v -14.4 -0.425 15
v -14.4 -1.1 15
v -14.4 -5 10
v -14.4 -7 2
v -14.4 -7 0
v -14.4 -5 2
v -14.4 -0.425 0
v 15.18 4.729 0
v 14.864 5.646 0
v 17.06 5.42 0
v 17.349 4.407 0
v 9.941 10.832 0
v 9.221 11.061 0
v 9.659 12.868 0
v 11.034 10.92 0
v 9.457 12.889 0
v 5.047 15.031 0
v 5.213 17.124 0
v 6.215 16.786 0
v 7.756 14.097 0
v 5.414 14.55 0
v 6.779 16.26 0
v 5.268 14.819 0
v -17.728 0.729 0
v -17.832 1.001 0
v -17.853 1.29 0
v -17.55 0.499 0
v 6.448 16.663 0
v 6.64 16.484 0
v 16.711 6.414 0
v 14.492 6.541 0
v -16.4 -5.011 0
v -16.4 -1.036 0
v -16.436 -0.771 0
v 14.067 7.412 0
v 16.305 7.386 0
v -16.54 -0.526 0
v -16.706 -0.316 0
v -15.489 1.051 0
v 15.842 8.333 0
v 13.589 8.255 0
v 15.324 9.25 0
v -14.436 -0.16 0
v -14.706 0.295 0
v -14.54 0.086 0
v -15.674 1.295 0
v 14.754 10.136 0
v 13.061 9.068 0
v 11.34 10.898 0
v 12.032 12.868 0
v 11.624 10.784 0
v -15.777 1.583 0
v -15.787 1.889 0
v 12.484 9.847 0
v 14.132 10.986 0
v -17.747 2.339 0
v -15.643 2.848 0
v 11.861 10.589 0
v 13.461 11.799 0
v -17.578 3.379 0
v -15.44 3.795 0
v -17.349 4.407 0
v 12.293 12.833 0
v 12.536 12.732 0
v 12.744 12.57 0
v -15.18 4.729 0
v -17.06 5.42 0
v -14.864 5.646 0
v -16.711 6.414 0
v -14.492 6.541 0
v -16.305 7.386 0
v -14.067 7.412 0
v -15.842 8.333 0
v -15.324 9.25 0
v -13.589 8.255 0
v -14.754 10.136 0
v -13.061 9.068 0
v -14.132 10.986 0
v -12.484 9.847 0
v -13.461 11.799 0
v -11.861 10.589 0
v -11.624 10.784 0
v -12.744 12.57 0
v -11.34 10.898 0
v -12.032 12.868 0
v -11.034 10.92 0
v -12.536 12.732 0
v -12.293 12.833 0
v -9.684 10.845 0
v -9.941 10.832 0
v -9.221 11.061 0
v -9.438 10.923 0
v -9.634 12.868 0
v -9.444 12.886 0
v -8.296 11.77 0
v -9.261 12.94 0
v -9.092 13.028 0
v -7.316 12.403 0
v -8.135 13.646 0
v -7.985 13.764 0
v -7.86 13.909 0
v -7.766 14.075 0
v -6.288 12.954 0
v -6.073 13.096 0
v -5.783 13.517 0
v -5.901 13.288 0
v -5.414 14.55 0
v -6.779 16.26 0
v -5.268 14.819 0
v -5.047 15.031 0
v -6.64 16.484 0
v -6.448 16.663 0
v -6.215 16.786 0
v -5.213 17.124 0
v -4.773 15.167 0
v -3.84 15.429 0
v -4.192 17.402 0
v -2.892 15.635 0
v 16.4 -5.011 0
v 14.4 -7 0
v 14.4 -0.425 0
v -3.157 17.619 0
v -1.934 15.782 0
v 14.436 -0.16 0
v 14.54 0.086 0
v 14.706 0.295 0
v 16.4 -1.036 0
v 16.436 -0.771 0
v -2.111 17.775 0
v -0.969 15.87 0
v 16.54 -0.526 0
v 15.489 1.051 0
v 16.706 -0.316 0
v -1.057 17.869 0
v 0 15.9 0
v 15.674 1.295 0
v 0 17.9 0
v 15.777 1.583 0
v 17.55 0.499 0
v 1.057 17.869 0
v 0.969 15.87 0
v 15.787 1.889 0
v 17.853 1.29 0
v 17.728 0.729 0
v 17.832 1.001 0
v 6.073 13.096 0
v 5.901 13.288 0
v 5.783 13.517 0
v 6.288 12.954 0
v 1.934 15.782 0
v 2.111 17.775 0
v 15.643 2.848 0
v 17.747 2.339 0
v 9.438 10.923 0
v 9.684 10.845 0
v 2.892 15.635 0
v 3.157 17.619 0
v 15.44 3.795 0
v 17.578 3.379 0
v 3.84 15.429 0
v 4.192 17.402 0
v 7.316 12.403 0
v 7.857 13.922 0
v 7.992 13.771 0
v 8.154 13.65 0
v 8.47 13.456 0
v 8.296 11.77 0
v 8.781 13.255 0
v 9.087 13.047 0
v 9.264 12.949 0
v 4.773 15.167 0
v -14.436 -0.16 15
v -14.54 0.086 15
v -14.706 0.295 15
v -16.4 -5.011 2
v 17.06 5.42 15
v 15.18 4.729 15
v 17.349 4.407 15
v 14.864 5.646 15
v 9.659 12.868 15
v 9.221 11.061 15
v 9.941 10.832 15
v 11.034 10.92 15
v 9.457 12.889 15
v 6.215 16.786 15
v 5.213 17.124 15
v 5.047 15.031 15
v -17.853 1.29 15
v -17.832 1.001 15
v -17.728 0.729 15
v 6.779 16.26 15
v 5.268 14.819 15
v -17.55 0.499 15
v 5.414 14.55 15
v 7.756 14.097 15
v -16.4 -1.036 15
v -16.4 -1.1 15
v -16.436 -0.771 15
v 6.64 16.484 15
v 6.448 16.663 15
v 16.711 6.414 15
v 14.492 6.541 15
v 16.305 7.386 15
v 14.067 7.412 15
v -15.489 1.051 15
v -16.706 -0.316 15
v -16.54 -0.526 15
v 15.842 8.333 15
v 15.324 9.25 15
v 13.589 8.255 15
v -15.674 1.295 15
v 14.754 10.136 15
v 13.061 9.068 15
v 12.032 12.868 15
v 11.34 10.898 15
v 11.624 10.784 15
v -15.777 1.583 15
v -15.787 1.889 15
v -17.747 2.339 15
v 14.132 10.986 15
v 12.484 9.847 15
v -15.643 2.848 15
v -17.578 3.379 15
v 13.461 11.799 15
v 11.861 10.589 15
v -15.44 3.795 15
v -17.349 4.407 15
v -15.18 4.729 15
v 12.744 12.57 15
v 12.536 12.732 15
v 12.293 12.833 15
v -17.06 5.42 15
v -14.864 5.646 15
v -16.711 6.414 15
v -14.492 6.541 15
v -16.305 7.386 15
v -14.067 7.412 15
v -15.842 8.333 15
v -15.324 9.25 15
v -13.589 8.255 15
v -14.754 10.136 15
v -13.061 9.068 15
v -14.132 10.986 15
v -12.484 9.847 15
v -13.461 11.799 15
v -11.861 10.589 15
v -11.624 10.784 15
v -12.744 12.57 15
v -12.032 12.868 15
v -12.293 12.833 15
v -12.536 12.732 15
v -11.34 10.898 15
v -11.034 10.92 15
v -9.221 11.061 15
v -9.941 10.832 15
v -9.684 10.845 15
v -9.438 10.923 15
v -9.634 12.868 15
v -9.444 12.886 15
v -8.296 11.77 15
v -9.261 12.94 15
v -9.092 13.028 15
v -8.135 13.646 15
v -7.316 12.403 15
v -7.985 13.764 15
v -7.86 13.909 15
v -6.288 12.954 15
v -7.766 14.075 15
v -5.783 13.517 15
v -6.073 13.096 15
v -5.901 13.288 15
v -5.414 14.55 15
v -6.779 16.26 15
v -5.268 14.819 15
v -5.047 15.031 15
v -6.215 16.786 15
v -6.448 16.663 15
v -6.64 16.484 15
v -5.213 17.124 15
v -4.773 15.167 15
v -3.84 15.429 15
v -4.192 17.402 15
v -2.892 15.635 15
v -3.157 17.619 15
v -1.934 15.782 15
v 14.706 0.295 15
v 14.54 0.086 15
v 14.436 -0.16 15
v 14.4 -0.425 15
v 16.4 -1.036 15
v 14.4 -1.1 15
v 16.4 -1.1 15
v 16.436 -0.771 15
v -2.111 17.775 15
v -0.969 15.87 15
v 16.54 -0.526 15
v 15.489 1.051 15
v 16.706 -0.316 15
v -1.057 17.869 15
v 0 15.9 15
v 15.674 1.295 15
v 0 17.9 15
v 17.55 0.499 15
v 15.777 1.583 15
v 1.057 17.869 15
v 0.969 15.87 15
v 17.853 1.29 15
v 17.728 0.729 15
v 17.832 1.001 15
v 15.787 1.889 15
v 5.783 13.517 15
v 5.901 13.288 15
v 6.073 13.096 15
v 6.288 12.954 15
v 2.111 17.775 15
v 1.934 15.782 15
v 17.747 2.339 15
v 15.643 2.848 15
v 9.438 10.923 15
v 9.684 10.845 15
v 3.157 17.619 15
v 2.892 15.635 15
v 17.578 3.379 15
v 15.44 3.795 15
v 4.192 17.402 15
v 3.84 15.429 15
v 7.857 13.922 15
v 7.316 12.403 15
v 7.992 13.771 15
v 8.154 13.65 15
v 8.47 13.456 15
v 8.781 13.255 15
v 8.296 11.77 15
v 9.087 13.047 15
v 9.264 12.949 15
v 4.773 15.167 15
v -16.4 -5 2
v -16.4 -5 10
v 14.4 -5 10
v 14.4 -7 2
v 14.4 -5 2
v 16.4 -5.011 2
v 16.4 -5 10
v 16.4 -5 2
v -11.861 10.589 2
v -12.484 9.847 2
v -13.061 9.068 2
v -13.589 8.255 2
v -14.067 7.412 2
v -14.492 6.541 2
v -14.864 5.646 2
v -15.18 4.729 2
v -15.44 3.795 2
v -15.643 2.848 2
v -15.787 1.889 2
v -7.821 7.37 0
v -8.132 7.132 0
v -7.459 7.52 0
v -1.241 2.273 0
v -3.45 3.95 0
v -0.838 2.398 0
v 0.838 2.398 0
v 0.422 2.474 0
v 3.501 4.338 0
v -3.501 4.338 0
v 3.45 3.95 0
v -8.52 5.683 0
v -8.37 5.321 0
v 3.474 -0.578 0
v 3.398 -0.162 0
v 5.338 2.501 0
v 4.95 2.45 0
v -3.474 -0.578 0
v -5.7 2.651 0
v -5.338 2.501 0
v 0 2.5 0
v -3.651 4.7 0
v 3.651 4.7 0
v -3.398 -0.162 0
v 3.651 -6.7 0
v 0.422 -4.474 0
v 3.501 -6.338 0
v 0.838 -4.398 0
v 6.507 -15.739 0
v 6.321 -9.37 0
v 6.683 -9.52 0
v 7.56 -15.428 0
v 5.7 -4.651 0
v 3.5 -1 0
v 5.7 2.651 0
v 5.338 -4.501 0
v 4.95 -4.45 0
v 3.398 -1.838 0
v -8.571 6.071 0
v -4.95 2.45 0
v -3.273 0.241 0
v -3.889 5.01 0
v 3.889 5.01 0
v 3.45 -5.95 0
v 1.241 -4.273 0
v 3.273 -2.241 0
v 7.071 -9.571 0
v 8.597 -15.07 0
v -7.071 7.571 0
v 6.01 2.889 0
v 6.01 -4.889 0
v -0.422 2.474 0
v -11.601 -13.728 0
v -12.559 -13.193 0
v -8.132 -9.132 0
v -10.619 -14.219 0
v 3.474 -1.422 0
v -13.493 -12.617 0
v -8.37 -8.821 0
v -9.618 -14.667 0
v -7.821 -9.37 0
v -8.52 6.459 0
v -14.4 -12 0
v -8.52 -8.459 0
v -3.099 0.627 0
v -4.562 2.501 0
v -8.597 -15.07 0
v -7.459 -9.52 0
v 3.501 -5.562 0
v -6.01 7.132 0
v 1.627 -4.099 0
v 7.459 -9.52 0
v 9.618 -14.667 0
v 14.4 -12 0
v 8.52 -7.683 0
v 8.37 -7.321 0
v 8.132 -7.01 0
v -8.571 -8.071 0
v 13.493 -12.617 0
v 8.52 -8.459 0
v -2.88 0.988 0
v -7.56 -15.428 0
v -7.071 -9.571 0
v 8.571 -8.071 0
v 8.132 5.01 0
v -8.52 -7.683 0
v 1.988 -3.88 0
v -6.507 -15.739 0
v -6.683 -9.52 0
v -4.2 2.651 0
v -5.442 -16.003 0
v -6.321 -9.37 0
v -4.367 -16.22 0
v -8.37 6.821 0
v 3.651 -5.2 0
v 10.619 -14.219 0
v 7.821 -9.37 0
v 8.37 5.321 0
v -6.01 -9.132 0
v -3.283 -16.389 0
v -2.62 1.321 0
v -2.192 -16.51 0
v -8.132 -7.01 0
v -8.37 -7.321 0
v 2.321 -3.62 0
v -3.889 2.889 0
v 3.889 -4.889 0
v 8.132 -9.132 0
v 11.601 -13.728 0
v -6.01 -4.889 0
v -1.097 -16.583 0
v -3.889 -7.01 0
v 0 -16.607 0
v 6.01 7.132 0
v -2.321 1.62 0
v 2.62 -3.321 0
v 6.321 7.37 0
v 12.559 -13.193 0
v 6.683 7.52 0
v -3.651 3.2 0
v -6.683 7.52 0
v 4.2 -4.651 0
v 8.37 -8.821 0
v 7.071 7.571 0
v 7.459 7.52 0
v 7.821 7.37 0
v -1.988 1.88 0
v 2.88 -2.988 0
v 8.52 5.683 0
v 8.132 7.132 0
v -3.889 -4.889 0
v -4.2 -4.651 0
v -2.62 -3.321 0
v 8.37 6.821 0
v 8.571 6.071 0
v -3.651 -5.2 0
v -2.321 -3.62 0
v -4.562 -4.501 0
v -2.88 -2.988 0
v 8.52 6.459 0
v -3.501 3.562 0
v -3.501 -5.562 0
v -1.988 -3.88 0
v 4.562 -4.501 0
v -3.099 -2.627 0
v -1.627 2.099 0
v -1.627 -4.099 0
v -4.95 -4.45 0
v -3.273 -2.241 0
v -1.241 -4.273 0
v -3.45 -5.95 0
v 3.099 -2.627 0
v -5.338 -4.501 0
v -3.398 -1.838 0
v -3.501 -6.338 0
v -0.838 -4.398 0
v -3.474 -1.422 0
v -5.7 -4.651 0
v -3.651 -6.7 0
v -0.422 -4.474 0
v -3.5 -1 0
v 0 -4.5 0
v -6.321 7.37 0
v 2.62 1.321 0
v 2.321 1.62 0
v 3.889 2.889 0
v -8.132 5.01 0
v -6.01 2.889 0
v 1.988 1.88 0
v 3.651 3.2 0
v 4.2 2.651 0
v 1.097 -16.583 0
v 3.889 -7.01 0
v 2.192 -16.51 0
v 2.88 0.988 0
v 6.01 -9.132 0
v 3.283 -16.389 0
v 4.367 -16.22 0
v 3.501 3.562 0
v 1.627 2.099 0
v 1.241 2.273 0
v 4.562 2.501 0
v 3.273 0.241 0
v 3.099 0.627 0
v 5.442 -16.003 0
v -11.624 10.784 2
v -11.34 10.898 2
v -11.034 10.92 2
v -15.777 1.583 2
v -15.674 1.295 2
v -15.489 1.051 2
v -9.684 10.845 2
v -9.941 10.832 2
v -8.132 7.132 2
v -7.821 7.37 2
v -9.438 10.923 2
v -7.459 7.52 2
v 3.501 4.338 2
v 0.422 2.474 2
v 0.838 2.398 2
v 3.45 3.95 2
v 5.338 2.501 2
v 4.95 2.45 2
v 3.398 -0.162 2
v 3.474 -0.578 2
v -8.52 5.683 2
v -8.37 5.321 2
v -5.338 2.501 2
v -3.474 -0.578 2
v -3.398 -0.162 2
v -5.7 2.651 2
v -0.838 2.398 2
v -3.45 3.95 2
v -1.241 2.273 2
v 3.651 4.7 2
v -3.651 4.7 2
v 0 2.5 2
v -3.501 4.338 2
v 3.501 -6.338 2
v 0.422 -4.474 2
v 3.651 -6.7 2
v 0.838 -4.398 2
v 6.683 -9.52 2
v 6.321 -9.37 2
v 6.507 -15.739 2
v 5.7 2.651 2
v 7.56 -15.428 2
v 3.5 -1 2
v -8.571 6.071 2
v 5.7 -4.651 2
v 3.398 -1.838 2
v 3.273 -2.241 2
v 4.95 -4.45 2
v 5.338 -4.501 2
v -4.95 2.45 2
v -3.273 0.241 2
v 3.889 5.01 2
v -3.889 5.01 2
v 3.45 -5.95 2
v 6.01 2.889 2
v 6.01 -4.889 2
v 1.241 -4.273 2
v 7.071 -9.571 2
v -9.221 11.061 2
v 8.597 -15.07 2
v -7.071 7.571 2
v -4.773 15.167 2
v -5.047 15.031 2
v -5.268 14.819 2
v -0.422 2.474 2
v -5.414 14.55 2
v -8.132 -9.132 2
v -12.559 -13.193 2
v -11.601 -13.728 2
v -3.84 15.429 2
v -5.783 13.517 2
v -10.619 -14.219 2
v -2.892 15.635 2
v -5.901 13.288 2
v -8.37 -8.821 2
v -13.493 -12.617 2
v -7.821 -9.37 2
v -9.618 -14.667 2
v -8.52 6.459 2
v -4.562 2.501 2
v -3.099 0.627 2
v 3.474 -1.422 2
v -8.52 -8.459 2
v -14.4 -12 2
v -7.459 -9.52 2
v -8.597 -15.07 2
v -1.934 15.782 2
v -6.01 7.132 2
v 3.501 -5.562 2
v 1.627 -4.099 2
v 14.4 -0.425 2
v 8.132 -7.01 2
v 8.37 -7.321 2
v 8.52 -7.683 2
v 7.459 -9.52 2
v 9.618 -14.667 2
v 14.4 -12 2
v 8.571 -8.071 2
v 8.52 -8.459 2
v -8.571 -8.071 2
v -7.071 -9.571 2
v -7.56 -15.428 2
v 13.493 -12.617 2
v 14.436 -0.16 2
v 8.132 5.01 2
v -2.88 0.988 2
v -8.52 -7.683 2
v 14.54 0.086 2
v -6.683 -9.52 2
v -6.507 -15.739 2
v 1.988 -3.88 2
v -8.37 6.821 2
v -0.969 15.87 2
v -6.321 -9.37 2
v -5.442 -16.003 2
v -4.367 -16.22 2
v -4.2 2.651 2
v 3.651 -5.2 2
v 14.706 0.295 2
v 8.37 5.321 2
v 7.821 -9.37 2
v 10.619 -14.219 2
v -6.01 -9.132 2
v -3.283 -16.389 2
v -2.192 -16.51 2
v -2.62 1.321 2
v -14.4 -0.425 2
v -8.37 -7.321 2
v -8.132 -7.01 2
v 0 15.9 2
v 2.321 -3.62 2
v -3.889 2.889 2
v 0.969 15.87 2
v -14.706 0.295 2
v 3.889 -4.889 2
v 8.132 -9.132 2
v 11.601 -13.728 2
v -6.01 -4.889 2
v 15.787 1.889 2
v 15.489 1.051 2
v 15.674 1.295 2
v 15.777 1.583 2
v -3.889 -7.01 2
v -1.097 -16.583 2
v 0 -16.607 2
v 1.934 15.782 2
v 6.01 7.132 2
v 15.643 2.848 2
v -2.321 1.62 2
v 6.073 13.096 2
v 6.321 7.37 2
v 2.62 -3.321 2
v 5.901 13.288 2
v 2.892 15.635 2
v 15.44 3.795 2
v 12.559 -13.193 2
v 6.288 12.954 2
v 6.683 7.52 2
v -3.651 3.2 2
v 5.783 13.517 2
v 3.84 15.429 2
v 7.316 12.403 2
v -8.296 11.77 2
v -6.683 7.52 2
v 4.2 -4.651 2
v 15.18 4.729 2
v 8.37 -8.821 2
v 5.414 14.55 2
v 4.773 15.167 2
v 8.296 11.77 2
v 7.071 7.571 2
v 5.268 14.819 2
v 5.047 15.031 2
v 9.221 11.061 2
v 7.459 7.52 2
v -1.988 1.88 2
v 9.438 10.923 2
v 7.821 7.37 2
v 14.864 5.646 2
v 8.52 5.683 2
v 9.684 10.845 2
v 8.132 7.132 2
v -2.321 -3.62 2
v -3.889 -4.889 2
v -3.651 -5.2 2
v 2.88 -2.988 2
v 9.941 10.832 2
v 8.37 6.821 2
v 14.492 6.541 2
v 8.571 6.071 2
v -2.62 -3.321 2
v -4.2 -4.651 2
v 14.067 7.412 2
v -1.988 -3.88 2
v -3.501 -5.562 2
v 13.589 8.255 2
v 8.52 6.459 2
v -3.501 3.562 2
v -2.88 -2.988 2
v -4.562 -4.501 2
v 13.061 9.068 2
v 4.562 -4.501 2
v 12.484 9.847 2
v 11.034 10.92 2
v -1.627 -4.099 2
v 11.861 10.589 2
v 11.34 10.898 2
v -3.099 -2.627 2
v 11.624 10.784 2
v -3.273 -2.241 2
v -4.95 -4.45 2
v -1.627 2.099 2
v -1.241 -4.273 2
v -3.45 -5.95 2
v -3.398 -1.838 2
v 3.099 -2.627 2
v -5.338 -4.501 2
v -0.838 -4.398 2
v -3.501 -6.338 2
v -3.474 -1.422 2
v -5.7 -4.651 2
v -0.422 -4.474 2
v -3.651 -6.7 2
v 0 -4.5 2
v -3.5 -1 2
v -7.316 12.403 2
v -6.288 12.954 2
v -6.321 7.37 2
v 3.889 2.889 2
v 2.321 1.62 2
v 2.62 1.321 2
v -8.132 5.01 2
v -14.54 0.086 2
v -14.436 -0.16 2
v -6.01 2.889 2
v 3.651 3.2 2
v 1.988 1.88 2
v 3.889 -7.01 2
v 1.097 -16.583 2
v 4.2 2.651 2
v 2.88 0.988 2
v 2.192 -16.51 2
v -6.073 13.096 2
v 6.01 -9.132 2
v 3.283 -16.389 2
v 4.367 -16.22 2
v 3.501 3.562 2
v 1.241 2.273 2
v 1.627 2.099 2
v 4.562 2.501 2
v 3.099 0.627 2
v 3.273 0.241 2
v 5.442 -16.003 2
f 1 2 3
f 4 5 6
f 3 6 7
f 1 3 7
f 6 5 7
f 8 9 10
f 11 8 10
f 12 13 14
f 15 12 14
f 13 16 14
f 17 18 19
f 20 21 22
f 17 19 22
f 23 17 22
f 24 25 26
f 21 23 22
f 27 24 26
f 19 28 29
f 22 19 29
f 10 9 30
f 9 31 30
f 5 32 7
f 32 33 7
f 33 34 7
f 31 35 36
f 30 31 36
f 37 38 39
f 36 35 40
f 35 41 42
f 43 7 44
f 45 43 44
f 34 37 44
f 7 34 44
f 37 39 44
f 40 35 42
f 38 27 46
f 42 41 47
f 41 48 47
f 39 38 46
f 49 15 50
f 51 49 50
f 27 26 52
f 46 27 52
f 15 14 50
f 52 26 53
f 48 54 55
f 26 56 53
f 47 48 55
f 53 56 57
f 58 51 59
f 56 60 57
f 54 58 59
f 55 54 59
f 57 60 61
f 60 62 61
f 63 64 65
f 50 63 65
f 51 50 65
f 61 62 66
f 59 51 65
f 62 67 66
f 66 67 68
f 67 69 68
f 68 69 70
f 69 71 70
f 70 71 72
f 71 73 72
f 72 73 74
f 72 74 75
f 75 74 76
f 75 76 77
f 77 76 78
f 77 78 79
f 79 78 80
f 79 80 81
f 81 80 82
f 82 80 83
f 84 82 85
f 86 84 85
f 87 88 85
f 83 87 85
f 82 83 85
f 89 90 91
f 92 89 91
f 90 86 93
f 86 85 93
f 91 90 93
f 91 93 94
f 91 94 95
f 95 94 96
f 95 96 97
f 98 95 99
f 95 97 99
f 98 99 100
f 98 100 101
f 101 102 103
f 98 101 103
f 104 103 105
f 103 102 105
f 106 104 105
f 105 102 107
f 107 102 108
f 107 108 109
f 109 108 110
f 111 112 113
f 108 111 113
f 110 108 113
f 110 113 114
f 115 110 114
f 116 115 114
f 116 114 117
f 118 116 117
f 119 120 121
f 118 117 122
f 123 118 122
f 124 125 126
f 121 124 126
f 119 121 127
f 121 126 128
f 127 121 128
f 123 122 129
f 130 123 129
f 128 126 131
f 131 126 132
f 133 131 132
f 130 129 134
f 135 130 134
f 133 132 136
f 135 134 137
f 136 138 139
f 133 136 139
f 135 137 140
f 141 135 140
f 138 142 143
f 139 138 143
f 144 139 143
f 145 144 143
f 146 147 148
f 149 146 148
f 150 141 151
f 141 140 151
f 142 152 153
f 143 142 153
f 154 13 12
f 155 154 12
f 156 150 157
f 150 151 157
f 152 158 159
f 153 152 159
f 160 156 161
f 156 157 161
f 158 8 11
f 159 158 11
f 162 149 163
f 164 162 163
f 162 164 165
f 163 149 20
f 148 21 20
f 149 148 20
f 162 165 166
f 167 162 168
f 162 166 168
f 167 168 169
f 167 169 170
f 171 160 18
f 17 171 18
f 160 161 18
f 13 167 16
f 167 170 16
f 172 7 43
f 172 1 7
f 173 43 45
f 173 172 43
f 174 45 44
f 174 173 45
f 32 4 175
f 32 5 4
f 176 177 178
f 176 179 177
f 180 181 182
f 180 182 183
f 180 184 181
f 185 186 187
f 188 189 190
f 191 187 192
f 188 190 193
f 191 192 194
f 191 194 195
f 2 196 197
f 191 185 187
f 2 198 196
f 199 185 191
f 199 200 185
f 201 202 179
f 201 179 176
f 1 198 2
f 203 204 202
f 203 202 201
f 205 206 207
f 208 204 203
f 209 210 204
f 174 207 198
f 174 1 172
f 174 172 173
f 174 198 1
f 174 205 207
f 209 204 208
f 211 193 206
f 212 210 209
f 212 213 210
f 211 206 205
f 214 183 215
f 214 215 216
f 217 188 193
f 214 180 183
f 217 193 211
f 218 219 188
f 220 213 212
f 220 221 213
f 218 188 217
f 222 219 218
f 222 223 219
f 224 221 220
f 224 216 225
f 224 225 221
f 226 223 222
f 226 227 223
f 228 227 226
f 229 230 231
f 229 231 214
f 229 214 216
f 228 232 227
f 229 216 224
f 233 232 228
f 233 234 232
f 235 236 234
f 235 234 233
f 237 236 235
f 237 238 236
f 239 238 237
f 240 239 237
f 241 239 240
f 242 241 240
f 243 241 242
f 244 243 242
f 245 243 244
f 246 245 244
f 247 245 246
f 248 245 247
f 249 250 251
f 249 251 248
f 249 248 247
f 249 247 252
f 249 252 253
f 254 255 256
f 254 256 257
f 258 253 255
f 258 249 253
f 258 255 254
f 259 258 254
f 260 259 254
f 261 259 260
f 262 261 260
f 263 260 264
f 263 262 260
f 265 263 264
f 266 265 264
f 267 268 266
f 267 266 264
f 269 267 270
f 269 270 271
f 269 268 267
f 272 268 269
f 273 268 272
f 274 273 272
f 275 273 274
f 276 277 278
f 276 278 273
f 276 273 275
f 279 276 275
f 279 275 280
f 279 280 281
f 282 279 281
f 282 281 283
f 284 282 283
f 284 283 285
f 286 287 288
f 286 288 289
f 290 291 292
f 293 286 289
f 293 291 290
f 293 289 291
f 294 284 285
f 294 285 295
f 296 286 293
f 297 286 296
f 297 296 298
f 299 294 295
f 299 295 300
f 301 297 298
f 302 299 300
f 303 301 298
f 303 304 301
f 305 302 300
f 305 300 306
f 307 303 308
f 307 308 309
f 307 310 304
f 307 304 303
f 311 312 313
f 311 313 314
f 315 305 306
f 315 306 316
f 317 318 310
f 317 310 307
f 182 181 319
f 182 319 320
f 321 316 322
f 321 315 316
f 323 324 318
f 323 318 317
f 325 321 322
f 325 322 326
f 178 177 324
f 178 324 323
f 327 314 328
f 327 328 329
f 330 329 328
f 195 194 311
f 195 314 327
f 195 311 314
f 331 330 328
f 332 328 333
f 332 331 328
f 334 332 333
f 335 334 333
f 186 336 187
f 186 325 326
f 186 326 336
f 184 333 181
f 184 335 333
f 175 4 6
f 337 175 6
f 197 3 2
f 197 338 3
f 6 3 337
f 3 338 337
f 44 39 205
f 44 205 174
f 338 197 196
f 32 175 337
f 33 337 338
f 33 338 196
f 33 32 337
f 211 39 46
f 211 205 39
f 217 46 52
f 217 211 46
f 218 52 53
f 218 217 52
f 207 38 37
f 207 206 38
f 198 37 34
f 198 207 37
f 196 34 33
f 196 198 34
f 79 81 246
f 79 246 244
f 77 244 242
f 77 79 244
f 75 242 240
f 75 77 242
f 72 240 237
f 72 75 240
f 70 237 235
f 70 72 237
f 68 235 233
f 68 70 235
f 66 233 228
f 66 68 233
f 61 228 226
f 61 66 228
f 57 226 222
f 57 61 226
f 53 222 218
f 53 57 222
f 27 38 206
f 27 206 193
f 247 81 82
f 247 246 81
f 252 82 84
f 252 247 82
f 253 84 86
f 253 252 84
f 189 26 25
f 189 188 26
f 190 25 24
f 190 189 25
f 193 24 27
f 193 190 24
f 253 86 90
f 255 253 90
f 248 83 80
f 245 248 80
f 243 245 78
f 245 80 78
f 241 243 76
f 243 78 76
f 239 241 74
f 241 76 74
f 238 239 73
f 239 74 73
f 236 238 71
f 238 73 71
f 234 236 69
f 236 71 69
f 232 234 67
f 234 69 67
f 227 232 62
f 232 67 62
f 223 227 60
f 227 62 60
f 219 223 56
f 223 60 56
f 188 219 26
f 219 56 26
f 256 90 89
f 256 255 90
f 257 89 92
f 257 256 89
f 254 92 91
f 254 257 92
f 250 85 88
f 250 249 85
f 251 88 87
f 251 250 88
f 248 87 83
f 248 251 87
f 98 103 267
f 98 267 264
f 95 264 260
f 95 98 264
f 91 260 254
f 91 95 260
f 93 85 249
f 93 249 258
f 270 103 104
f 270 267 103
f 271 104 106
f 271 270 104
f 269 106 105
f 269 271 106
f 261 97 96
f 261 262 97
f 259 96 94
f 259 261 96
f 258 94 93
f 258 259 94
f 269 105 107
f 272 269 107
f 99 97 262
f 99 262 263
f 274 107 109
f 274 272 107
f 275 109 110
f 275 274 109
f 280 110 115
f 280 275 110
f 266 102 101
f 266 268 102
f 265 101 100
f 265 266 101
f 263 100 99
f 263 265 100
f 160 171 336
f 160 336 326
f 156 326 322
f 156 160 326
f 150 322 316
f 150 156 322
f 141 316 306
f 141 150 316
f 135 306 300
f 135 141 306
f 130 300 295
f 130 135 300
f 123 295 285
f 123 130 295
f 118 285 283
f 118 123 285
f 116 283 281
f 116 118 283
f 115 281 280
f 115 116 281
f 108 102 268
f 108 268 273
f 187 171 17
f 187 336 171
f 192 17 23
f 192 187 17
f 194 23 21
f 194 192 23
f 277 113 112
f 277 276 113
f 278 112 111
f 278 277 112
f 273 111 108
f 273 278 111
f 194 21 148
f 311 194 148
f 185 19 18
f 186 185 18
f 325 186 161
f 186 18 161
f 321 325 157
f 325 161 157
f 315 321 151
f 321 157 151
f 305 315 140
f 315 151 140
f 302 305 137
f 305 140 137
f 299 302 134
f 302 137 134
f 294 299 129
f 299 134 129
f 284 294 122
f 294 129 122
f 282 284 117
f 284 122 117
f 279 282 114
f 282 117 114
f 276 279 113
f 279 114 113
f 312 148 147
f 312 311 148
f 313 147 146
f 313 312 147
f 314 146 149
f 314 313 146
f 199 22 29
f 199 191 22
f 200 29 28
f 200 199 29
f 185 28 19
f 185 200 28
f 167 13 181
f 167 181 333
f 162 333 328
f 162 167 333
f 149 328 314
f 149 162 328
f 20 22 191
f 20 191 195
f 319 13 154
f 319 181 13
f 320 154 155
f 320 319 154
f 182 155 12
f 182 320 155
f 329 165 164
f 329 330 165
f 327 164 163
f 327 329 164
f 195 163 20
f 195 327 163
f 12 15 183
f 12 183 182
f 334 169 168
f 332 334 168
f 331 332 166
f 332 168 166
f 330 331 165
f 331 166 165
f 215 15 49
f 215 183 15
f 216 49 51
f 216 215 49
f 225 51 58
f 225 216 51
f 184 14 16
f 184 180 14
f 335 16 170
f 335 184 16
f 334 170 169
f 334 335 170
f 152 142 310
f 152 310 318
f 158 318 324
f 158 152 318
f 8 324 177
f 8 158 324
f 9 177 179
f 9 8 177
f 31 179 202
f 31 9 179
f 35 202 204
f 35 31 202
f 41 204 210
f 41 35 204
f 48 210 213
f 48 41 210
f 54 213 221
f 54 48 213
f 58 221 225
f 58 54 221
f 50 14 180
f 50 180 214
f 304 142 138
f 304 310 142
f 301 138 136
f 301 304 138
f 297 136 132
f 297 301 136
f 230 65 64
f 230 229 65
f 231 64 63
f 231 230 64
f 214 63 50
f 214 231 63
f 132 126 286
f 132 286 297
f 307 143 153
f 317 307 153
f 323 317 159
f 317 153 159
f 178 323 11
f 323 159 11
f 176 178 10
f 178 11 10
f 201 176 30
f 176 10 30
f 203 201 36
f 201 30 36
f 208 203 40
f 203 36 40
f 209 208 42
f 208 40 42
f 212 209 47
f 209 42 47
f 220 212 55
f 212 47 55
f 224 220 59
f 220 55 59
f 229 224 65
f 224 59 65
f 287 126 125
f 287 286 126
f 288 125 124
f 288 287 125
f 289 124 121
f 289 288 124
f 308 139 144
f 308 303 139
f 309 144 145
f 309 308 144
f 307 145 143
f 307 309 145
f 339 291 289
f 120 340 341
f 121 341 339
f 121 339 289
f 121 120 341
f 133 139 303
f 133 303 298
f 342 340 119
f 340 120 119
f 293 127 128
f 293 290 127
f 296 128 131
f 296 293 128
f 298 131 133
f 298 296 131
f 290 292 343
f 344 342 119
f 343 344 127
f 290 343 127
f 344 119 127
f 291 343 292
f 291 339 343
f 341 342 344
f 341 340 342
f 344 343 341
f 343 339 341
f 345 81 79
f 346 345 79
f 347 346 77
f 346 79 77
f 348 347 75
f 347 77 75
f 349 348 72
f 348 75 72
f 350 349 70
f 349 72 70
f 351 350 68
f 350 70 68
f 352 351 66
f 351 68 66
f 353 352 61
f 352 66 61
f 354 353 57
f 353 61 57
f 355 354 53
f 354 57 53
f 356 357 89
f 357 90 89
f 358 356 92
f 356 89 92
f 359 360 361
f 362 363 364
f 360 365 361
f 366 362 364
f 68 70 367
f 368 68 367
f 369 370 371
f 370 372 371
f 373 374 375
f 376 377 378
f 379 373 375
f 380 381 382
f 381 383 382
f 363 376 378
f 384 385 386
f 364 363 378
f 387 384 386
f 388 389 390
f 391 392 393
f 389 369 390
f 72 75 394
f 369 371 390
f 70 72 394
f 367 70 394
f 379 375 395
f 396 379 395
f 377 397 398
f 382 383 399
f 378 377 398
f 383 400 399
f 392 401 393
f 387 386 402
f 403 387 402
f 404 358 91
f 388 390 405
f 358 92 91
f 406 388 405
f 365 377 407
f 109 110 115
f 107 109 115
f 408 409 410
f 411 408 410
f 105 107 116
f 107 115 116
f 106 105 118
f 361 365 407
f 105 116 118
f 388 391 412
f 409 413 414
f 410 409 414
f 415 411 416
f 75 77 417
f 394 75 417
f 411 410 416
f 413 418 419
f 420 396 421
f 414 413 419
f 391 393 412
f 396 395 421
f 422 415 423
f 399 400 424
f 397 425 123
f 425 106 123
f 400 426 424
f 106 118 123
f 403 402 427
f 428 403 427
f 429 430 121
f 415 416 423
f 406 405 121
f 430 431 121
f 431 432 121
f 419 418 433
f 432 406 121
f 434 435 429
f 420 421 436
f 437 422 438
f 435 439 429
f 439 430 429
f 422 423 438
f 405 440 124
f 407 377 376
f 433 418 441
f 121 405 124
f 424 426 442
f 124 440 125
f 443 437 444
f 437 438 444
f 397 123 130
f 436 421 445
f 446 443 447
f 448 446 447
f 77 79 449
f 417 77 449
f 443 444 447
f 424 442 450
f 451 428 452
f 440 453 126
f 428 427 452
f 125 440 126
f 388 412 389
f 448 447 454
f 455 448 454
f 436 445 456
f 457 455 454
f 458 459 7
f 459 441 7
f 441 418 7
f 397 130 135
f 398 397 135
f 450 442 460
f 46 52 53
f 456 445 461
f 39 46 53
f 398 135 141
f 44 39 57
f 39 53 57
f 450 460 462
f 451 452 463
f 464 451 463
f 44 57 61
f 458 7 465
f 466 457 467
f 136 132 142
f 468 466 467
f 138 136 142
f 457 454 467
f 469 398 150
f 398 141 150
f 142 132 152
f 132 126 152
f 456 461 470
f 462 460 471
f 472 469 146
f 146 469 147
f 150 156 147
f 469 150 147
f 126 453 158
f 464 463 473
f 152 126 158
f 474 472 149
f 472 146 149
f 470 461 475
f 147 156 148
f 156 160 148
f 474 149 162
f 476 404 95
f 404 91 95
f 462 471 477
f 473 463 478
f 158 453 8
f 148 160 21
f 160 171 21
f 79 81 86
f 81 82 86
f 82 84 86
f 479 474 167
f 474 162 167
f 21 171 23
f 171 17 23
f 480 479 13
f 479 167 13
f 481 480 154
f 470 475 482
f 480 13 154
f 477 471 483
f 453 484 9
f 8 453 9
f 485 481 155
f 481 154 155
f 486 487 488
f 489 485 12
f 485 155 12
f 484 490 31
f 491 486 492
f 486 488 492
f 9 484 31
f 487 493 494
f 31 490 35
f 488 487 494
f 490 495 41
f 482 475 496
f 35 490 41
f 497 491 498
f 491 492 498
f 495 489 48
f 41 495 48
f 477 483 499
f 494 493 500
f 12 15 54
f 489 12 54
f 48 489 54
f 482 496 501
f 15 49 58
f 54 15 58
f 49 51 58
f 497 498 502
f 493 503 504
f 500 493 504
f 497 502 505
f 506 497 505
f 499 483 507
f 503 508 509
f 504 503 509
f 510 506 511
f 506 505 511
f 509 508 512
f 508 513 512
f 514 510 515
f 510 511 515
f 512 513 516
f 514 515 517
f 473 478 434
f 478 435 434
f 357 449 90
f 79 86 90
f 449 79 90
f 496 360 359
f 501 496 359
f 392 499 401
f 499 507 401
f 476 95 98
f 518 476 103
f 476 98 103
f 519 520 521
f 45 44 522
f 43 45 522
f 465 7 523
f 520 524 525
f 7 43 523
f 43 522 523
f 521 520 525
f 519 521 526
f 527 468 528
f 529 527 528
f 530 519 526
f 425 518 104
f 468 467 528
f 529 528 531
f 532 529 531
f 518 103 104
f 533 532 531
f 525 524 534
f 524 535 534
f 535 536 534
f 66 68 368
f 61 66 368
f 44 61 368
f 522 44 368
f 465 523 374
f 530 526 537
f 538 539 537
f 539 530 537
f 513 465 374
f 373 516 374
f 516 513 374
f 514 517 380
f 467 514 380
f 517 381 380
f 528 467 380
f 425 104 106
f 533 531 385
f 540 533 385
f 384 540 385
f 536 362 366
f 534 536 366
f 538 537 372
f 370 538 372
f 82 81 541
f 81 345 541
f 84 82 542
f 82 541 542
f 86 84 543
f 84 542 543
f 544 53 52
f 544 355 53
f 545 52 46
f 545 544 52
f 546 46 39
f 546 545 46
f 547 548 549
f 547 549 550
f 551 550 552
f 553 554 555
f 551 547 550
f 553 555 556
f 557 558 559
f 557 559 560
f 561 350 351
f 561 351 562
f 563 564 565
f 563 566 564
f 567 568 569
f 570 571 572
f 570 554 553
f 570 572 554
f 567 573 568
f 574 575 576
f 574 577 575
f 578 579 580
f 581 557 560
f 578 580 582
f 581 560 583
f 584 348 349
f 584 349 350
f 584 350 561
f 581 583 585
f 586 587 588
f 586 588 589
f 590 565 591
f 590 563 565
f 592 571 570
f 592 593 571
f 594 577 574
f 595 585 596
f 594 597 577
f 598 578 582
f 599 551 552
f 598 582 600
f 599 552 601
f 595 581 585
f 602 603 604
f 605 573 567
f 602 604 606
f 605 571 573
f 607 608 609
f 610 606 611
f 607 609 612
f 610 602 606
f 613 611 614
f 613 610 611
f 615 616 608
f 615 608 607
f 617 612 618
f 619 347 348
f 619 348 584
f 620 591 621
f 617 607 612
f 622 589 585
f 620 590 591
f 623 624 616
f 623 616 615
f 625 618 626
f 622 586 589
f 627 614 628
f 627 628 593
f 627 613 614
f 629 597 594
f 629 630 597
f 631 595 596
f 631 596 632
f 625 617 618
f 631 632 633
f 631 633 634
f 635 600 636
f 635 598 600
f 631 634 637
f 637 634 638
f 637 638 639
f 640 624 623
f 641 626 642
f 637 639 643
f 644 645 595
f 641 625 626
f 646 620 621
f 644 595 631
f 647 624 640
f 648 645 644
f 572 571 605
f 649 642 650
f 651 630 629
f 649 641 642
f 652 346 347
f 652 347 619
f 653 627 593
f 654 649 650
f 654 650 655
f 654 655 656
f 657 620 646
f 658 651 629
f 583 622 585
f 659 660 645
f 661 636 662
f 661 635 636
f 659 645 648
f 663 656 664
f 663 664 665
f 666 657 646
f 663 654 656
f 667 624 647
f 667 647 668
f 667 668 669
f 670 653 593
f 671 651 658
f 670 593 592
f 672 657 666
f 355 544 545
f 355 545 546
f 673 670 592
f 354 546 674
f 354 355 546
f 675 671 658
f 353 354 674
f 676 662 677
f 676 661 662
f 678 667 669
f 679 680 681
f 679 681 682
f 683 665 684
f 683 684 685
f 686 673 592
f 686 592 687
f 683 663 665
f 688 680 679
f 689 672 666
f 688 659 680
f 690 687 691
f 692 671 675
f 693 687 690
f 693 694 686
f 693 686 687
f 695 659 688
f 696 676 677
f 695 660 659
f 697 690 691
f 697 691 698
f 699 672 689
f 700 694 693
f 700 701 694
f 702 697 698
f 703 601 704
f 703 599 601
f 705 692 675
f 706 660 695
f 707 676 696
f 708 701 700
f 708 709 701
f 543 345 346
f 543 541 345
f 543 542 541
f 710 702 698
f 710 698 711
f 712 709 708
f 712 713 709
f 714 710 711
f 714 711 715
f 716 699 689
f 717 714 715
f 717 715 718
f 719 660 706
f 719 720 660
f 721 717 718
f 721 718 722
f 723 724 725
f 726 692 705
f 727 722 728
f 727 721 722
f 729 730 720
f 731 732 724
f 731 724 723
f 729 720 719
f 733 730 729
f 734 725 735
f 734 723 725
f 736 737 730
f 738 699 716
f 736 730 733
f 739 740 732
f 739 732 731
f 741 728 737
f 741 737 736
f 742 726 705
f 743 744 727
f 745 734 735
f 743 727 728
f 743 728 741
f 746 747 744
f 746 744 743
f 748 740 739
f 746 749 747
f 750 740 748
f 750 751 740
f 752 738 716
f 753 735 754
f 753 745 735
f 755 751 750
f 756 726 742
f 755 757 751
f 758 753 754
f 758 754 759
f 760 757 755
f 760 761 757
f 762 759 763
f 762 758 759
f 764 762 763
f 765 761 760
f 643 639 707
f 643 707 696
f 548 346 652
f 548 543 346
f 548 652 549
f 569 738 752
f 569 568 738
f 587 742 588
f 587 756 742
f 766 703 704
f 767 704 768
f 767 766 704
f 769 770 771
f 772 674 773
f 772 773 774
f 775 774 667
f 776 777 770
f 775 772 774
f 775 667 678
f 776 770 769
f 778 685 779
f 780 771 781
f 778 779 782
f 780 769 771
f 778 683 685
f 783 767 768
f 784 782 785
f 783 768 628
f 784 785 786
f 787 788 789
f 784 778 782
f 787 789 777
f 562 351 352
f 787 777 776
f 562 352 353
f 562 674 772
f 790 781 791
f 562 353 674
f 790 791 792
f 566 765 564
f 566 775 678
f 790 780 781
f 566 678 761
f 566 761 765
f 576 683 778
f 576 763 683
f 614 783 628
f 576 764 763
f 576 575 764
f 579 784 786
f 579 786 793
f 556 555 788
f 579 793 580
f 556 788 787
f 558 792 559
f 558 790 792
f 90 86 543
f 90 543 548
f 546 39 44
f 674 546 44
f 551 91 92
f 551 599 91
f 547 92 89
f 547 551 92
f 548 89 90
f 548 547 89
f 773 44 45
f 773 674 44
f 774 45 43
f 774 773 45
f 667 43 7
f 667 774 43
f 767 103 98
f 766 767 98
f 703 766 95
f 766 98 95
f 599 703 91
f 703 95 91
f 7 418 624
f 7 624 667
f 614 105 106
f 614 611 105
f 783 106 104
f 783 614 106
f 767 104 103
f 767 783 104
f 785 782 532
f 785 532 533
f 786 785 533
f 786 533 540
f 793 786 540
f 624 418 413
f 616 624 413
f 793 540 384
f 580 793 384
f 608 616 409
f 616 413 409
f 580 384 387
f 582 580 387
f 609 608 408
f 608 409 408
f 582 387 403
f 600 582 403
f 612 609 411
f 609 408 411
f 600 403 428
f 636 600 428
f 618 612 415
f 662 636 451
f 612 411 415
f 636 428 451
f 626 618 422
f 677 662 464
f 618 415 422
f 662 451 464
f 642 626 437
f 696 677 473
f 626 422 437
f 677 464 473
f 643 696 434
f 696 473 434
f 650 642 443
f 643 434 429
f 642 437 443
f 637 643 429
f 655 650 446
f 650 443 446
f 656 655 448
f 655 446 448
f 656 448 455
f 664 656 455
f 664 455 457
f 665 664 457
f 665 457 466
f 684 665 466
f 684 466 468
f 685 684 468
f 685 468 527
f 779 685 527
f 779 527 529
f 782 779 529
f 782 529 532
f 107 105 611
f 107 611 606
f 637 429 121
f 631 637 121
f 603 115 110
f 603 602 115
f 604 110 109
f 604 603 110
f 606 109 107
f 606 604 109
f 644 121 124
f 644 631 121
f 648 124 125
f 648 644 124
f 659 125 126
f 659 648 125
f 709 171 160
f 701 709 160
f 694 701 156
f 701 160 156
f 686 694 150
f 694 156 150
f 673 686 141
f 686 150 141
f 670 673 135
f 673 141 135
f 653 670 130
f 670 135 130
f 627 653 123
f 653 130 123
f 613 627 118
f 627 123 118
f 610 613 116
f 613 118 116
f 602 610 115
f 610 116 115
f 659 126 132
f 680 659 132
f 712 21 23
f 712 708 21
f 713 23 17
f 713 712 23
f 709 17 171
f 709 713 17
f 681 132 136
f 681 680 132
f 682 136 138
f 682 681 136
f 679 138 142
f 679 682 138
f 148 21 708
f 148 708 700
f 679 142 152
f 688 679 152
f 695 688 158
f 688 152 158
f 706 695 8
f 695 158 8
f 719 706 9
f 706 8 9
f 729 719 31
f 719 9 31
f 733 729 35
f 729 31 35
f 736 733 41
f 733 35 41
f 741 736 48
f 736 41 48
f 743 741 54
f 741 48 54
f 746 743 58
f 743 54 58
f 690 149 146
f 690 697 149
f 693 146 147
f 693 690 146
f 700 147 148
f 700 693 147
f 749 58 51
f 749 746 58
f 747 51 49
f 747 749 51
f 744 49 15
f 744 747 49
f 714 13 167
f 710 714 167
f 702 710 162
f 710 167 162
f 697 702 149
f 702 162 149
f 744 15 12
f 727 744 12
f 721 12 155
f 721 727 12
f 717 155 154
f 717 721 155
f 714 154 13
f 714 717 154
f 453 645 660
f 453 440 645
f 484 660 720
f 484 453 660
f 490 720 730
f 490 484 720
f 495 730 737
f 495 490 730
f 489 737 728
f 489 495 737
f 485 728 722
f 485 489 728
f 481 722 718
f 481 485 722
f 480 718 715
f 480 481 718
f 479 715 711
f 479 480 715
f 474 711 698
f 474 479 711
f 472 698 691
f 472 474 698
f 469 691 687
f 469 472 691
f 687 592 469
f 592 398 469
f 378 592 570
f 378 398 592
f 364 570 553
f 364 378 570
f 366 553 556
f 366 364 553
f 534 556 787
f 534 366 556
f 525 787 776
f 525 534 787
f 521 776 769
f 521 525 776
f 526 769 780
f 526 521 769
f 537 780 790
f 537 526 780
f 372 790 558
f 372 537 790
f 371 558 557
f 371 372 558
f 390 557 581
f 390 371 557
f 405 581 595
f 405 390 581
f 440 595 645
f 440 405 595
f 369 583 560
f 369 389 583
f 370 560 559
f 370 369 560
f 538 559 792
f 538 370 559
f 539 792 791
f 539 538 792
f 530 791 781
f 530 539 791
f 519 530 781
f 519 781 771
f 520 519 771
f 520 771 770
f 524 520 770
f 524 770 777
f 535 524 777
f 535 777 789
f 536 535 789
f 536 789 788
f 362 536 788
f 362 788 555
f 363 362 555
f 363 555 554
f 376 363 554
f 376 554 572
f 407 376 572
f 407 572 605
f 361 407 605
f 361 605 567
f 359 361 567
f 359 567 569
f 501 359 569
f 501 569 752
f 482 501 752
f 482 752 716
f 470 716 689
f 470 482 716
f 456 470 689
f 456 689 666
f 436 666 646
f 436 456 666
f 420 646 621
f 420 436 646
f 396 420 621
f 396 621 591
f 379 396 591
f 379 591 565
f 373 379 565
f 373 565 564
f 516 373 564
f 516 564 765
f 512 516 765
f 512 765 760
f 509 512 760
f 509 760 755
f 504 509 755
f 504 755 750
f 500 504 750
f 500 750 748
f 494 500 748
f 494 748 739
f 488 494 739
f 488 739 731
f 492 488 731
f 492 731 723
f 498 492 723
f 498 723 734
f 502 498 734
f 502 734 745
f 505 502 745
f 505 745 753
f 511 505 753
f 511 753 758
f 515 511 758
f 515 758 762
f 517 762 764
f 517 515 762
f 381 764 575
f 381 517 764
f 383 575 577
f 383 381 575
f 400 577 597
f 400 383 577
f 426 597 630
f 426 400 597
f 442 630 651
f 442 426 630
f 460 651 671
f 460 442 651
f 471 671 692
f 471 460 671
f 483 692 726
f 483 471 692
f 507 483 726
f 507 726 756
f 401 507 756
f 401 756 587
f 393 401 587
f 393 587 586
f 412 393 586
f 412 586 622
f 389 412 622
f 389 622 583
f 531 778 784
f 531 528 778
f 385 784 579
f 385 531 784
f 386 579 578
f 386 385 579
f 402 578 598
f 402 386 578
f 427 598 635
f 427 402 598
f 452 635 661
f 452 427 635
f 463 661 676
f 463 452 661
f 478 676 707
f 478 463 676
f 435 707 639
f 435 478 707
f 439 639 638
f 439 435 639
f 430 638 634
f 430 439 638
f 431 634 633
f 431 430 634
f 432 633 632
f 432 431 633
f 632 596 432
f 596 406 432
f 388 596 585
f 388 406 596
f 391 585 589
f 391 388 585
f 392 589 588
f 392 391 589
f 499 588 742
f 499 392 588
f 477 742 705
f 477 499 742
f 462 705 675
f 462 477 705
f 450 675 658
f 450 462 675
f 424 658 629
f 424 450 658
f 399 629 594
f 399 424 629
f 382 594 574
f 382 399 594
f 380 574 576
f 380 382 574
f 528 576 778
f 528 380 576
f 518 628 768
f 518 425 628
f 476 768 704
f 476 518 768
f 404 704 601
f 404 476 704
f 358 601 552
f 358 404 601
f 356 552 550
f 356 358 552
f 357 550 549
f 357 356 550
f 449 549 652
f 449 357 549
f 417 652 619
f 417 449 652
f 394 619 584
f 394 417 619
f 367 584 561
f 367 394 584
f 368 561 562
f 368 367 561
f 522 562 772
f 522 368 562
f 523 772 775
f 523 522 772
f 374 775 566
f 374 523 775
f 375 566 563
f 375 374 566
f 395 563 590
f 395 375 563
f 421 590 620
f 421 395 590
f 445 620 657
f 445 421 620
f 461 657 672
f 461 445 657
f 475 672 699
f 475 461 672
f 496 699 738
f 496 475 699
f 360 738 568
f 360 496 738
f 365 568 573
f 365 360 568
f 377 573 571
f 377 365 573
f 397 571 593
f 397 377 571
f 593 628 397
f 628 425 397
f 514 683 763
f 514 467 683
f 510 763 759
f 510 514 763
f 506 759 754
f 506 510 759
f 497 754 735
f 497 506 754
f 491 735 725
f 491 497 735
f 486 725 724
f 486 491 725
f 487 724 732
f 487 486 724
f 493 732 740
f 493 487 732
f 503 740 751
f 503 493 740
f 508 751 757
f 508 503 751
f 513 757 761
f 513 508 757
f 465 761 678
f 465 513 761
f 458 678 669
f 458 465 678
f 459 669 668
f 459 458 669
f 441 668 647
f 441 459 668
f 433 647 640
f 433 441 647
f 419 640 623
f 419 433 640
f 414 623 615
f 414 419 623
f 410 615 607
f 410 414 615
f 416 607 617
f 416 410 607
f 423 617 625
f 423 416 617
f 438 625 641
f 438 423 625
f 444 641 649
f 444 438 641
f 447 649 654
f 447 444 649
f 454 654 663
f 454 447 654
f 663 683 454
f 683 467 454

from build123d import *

# Parameters (mm, degrees)
SKETCH_R     = 3.5
PAD004_DEPTH = 3
PAD_DEPTH    = 2
FILLET001_R  = 1
PAD002_DEPTH = 16.5
PAD003_DEPTH = 15
FILLET_R     = 1


with BuildPart() as holes_pad:
    # Sketch → Pad004 (new body)
    with BuildSketch(Plane.XY):
        with Locations((2e-06, -0.999998)):
            Circle(SKETCH_R)
        with BuildLine():
            Line((-6.010406, -4.889085), (-8.131726, -7.010406))
            ThreePointArc((-8.131726, -7.010406), (-8.131726, -9.131726), (-6.010406, -9.131726))
            Line((-3.889085, -7.010406), (-6.010406, -9.131726))
            ThreePointArc((-3.889085, -7.010406), (-3.889085, -4.889085), (-6.010406, -4.889085))
        make_face()
        with BuildLine():
            Line((3.889089, -7.010406), (6.01041, -9.131726))
            ThreePointArc((6.01041, -9.131726), (8.13173, -9.131726), (8.13173, -7.010406))
            Line((6.01041, -4.889085), (8.13173, -7.010406))
            ThreePointArc((6.01041, -4.889085), (3.889089, -4.889085), (3.889089, -7.010406))
        make_face()
        with BuildLine():
            Line((6.01041, 2.889089), (8.13173, 5.01041))
            ThreePointArc((8.13173, 5.01041), (8.13173, 7.13173), (6.01041, 7.13173))
            Line((3.889089, 5.01041), (6.01041, 7.13173))
            ThreePointArc((3.889089, 5.01041), (3.889089, 2.889089), (6.01041, 2.889089))
        make_face()
        with BuildLine():
            Line((-8.131726, 5.01041), (-6.010406, 2.889089))
            ThreePointArc((-6.010406, 2.889089), (-3.889085, 2.889089), (-3.889085, 5.01041))
            Line((-6.010406, 7.13173), (-3.889085, 5.01041))
            ThreePointArc((-6.010406, 7.13173), (-8.131726, 7.13173), (-8.131726, 5.01041))
        make_face()
    extrude(amount=PAD004_DEPTH)


with BuildPart() as base_cut:
    # Sketch001 → Pad (new body)
    with BuildSketch(Plane.XY):
        with BuildLine():
            ThreePointArc((-14.4, -12), (0, -16.607459), (14.4, -12))
            Line((14.4, -12), (14.4, 0))
            Line((14.4, 0), (15.839236, 1.38874))
            ThreePointArc((15.839236, 1.38874), (14.492345, 6.540789), (11.519847, 10.959157))
            Line((11.519847, 10.959157), (9.526303, 10.79859))
            ThreePointArc((9.526303, 10.79859), (7.812114, 12.09673), (5.923734, 13.125143))
            Line((5.25, 15.008248), (5.923734, 13.125143))
            ThreePointArc((5.25, 15.008248), (0, 15.9), (-5.25, 15.008248))
            Line((-5.923734, 13.125143), (-5.25, 15.008248))
            ThreePointArc((-5.923734, 13.125143), (-7.812114, 12.09673), (-9.526303, 10.79859))
            Line((-11.519847, 10.959157), (-9.526303, 10.79859))
            ThreePointArc((-11.519847, 10.959157), (-14.492345, 6.540789), (-15.839236, 1.38874))
            Line((-15.839236, 1.38874), (-14.4, 0))
            Line((-14.4, -12), (-14.4, 0))
        make_face()
    extrude(amount=PAD_DEPTH)

    # Fillet001
    fillet001_edges = [base_cut.edges().sort_by_distance(p)[0] for p in [
        (-11.519847, 10.959157, 1),
        (-15.839236, 1.38874, 1),
        (-14.4, 0, 1),
        (14.4, 0, 1),
        (15.839236, 1.38874, 1),
        (11.519847, 10.959157, 1),
        (9.526303, 10.79859, 1),
        (5.923734, 13.125143, 1),
        (5.25, 15.008248, 1),
        (-5.25, 15.008248, 1),
        (-5.923734, 13.125143, 1),
        (-9.526303, 10.79859, 1),
    ]]
    fillet(fillet001_edges, radius=FILLET001_R)

    # Cut001: cut Holes Pad
    add(holes_pad.part, mode=Mode.SUBTRACT)


with BuildPart() as walls_taper_pad:
    # Sketch002 → Pad002 (new body, symmetric)
    with BuildSketch(Plane.YZ):
        Polygon((-8, 2), (-5, 2), (-5, 10), (-1.1, 15), (-8, 15), align=None)
    extrude(amount=PAD002_DEPTH, both=True)


with BuildPart() as fillet_body:
    # Sketch003 → Pad003 (new body)
    with BuildSketch(Plane.XY):
        with BuildLine():
            Line((-14.4, -7), (-14.4, 0))
            Line((-15.839236, 1.38874), (-14.4, 0))
            ThreePointArc((-11.519847, 10.959157), (-14.492345, 6.540789), (-15.839236, 1.38874))
            Line((-11.519847, 10.959157), (-9.526303, 10.79859))
            ThreePointArc((-5.923734, 13.125143), (-7.812114, 12.09673), (-9.526303, 10.79859))
            Line((-5.923734, 13.125143), (-5.25, 15.008248))
            ThreePointArc((5.25, 15.008248), (0, 15.9), (-5.25, 15.008248))
            Line((5.25, 15.008248), (5.923734, 13.125143))
            ThreePointArc((9.526303, 10.79859), (7.812114, 12.09673), (5.923734, 13.125143))
            Line((11.519847, 10.959157), (9.526303, 10.79859))
            ThreePointArc((15.839236, 1.38874), (14.492345, 6.540789), (11.519847, 10.959157))
            Line((14.4, 0), (15.839236, 1.38874))
            Line((14.4, -7), (14.4, 0))
            Line((14.4, -7), (16.4, -5.01126))
            Line((16.4, -5.01126), (16.4, -0.61126))
            Line((17.881297, 0.818065), (16.4, -0.61126))
            ThreePointArc((17.881297, 0.818065), (16.315282, 7.36353), (12.442819, 12.868032))
            Line((9.339366, 12.868032), (12.442819, 12.868032))
            ThreePointArc((9.339366, 12.868032), (8.625875, 13.356806), (7.886864, 13.806063))
            Line((6.610195, 16.634762), (7.886864, 13.806063))
            ThreePointArc((6.610195, 16.634762), (0, 17.9), (-6.610195, 16.634762))
            Line((-7.886864, 13.806063), (-6.610195, 16.634762))
            Line((-9.339366, 12.868032), (-7.886864, 13.806063))
            Line((-12.442819, 12.868032), (-9.339366, 12.868032))
            ThreePointArc((-12.442819, 12.868032), (-16.315282, 7.36353), (-17.881297, 0.818065))
            Line((-16.4, -0.61126), (-17.881297, 0.818065))
            Line((-16.4, -5.01126), (-16.4, -0.61126))
            Line((-14.4, -7), (-16.4, -5.01126))
        make_face()
    extrude(amount=PAD003_DEPTH)

    # Cut: cut Walls Taper Pad
    add(walls_taper_pad.part, mode=Mode.SUBTRACT)

    # Fillet
    fillet_edges = [fillet_body.edges().sort_by_distance(p)[0] for p in [
        (-14.4, 0, 7.5),
        (-15.839236, 1.38874, 7.5),
        (-11.519847, 10.959157, 7.5),
        (-9.526303, 10.79859, 7.5),
        (-5.923734, 13.125143, 7.5),
        (-5.25, 15.008248, 7.5),
        (5.25, 15.008248, 7.5),
        (5.923734, 13.125143, 7.5),
        (9.526303, 10.79859, 7.5),
        (11.519847, 10.959157, 7.5),
        (15.839236, 1.38874, 7.5),
        (14.4, 0, 7.5),
        (16.4, -0.61126, 7.5),
        (17.881297, 0.818065, 7.5),
        (12.442819, 12.868032, 7.5),
        (9.339366, 12.868032, 7.5),
        (7.886864, 13.806063, 7.5),
        (6.610195, 16.634762, 7.5),
        (-6.610195, 16.634762, 7.5),
        (-7.886864, 13.806063, 7.5),
        (-9.339366, 12.868032, 7.5),
        (-12.442819, 12.868032, 7.5),
        (-17.881297, 0.818065, 7.5),
        (-16.4, -0.61126, 7.5),
    ]]
    fillet(fillet_edges, radius=FILLET_R)


solid = Compound([base_cut.part, fillet_body.part])
